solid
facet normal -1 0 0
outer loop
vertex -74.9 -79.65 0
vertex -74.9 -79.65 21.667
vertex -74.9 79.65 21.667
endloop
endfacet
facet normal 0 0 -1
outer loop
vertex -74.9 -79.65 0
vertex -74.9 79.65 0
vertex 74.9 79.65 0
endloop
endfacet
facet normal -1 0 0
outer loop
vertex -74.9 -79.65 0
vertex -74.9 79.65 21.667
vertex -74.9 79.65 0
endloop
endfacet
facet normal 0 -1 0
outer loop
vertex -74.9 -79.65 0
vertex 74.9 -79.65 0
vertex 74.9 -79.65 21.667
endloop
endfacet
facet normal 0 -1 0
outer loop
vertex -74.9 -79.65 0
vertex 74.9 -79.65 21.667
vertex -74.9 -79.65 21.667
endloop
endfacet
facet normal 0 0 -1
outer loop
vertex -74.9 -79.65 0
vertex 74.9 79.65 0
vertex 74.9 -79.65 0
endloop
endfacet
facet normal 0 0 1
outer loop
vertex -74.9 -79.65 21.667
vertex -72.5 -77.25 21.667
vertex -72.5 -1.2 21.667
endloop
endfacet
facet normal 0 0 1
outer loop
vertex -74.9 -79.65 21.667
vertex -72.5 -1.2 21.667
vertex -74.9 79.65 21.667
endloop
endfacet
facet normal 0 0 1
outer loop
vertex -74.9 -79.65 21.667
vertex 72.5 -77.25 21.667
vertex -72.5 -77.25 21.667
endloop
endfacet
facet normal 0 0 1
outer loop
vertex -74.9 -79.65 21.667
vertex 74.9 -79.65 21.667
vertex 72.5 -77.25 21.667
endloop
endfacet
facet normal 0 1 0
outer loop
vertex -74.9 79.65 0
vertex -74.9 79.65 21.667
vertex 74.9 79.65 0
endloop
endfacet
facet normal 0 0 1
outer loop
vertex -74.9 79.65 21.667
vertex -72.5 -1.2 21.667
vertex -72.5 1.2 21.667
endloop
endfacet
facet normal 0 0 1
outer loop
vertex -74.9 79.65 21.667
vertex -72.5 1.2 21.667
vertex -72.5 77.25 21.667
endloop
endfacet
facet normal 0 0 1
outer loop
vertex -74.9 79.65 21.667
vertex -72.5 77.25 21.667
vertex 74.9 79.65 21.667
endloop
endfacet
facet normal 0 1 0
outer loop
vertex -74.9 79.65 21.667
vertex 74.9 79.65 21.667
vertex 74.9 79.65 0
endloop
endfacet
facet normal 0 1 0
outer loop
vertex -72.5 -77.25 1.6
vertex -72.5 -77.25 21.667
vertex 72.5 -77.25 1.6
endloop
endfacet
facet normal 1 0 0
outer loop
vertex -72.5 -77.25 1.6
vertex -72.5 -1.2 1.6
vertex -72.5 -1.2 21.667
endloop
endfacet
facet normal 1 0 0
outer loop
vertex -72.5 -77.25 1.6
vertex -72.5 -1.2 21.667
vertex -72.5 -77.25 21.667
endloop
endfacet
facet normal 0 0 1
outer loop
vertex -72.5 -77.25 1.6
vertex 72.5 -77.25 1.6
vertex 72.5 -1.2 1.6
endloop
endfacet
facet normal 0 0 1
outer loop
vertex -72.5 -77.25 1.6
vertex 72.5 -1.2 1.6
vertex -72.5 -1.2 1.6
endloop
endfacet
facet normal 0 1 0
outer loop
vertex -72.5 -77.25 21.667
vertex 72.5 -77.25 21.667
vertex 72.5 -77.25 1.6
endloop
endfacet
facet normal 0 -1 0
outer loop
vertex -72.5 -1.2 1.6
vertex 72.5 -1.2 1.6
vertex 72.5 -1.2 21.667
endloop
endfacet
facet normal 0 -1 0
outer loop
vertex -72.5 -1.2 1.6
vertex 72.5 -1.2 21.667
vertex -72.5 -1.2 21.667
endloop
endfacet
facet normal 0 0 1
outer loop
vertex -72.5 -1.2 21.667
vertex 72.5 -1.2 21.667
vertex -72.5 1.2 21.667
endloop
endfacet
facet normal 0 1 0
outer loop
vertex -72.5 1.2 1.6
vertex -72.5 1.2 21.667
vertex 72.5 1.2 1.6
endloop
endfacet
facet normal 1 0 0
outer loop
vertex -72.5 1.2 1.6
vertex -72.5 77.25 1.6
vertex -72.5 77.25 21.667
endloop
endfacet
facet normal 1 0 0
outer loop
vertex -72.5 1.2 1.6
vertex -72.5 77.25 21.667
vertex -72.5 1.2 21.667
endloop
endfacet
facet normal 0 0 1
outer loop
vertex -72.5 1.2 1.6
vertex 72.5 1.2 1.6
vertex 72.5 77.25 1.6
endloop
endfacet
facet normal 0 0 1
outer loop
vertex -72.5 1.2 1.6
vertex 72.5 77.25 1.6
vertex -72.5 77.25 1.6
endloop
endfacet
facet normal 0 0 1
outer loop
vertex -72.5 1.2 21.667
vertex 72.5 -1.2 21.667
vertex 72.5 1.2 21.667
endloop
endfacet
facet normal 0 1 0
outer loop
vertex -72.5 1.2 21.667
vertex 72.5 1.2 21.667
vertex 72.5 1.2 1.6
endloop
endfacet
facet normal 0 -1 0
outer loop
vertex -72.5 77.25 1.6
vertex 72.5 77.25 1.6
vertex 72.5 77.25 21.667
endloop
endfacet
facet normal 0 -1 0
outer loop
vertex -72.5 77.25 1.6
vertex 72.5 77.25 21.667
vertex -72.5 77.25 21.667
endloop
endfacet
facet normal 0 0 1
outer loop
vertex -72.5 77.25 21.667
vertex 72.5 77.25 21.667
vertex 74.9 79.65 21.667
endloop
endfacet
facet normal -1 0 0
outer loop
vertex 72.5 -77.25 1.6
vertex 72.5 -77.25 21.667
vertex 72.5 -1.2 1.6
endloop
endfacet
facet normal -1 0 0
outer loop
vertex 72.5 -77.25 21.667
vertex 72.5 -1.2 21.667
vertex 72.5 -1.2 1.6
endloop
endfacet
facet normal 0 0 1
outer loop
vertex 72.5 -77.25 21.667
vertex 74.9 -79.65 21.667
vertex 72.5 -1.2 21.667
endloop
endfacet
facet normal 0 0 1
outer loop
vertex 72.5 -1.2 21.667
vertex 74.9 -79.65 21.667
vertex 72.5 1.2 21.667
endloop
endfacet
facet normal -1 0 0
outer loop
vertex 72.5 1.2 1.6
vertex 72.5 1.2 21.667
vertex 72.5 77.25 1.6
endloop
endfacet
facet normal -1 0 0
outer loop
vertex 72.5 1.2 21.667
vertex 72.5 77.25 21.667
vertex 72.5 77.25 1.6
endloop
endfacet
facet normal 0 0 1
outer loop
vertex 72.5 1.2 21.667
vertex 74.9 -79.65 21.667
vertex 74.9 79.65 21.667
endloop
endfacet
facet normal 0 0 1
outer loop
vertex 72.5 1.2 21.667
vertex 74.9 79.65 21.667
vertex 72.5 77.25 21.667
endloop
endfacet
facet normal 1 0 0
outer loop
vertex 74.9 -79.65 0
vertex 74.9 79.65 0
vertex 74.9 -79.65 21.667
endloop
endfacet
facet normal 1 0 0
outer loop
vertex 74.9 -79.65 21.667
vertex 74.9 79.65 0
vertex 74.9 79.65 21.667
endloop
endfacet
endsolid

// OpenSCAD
// Start: lazy_union
default_5_default_5();
// End: lazy_union

// Modules.

// 'PartMaterial undef-default - default 5.0'
module default_5_default_5() {
  // 'None : _combine_solids_and_holes'
  union() {
    // '_combine_solids_and_holes'
    difference() {
      // 'default : _combine_solids_and_holes'
      union() {
        // 'box'
        multmatrix(m=[[1.0, 0.0, 0.0, -74.9], [0.0, 1.0, 0.0, -79.65], [0.0, 0.0, 1.0, 0.0], [0.0, 0.0, 0.0, 1.0]]) {
          // 'box : _combine_solids_and_holes'
          union() {
            // 'box'
            cube(size=[149.8, 159.3, 21.666666666666668]);
          }
        }
      }
      // 'default'
      multmatrix(m=[[1.0, 0.0, 0.0, -72.5], [0.0, 1.0, 0.0, 1.2000000000000028], [0.0, 0.0, 1.0, 1.6], [0.0, 0.0, 0.0, 1.0]]) {
        // "('hole', 0, 0) : _combine_solids_and_holes"
        union() {
          // ('hole', 0, 0)
          cube(size=[145.0, 76.05, 20.076666666666668]);
        }
      }
      // 'default'
      multmatrix(m=[[1.0, 0.0, 0.0, -72.5], [0.0, 1.0, 0.0, -77.25], [0.0, 0.0, 1.0, 1.6], [0.0, 0.0, 0.0, 1.0]]) {
        // "('hole', 0, 1) : _combine_solids_and_holes"
        union() {
          // ('hole', 0, 1)
          cube(size=[145.0, 76.05, 20.076666666666668]);
        }
      }
    }
  }
} // end module default_5_default_5
